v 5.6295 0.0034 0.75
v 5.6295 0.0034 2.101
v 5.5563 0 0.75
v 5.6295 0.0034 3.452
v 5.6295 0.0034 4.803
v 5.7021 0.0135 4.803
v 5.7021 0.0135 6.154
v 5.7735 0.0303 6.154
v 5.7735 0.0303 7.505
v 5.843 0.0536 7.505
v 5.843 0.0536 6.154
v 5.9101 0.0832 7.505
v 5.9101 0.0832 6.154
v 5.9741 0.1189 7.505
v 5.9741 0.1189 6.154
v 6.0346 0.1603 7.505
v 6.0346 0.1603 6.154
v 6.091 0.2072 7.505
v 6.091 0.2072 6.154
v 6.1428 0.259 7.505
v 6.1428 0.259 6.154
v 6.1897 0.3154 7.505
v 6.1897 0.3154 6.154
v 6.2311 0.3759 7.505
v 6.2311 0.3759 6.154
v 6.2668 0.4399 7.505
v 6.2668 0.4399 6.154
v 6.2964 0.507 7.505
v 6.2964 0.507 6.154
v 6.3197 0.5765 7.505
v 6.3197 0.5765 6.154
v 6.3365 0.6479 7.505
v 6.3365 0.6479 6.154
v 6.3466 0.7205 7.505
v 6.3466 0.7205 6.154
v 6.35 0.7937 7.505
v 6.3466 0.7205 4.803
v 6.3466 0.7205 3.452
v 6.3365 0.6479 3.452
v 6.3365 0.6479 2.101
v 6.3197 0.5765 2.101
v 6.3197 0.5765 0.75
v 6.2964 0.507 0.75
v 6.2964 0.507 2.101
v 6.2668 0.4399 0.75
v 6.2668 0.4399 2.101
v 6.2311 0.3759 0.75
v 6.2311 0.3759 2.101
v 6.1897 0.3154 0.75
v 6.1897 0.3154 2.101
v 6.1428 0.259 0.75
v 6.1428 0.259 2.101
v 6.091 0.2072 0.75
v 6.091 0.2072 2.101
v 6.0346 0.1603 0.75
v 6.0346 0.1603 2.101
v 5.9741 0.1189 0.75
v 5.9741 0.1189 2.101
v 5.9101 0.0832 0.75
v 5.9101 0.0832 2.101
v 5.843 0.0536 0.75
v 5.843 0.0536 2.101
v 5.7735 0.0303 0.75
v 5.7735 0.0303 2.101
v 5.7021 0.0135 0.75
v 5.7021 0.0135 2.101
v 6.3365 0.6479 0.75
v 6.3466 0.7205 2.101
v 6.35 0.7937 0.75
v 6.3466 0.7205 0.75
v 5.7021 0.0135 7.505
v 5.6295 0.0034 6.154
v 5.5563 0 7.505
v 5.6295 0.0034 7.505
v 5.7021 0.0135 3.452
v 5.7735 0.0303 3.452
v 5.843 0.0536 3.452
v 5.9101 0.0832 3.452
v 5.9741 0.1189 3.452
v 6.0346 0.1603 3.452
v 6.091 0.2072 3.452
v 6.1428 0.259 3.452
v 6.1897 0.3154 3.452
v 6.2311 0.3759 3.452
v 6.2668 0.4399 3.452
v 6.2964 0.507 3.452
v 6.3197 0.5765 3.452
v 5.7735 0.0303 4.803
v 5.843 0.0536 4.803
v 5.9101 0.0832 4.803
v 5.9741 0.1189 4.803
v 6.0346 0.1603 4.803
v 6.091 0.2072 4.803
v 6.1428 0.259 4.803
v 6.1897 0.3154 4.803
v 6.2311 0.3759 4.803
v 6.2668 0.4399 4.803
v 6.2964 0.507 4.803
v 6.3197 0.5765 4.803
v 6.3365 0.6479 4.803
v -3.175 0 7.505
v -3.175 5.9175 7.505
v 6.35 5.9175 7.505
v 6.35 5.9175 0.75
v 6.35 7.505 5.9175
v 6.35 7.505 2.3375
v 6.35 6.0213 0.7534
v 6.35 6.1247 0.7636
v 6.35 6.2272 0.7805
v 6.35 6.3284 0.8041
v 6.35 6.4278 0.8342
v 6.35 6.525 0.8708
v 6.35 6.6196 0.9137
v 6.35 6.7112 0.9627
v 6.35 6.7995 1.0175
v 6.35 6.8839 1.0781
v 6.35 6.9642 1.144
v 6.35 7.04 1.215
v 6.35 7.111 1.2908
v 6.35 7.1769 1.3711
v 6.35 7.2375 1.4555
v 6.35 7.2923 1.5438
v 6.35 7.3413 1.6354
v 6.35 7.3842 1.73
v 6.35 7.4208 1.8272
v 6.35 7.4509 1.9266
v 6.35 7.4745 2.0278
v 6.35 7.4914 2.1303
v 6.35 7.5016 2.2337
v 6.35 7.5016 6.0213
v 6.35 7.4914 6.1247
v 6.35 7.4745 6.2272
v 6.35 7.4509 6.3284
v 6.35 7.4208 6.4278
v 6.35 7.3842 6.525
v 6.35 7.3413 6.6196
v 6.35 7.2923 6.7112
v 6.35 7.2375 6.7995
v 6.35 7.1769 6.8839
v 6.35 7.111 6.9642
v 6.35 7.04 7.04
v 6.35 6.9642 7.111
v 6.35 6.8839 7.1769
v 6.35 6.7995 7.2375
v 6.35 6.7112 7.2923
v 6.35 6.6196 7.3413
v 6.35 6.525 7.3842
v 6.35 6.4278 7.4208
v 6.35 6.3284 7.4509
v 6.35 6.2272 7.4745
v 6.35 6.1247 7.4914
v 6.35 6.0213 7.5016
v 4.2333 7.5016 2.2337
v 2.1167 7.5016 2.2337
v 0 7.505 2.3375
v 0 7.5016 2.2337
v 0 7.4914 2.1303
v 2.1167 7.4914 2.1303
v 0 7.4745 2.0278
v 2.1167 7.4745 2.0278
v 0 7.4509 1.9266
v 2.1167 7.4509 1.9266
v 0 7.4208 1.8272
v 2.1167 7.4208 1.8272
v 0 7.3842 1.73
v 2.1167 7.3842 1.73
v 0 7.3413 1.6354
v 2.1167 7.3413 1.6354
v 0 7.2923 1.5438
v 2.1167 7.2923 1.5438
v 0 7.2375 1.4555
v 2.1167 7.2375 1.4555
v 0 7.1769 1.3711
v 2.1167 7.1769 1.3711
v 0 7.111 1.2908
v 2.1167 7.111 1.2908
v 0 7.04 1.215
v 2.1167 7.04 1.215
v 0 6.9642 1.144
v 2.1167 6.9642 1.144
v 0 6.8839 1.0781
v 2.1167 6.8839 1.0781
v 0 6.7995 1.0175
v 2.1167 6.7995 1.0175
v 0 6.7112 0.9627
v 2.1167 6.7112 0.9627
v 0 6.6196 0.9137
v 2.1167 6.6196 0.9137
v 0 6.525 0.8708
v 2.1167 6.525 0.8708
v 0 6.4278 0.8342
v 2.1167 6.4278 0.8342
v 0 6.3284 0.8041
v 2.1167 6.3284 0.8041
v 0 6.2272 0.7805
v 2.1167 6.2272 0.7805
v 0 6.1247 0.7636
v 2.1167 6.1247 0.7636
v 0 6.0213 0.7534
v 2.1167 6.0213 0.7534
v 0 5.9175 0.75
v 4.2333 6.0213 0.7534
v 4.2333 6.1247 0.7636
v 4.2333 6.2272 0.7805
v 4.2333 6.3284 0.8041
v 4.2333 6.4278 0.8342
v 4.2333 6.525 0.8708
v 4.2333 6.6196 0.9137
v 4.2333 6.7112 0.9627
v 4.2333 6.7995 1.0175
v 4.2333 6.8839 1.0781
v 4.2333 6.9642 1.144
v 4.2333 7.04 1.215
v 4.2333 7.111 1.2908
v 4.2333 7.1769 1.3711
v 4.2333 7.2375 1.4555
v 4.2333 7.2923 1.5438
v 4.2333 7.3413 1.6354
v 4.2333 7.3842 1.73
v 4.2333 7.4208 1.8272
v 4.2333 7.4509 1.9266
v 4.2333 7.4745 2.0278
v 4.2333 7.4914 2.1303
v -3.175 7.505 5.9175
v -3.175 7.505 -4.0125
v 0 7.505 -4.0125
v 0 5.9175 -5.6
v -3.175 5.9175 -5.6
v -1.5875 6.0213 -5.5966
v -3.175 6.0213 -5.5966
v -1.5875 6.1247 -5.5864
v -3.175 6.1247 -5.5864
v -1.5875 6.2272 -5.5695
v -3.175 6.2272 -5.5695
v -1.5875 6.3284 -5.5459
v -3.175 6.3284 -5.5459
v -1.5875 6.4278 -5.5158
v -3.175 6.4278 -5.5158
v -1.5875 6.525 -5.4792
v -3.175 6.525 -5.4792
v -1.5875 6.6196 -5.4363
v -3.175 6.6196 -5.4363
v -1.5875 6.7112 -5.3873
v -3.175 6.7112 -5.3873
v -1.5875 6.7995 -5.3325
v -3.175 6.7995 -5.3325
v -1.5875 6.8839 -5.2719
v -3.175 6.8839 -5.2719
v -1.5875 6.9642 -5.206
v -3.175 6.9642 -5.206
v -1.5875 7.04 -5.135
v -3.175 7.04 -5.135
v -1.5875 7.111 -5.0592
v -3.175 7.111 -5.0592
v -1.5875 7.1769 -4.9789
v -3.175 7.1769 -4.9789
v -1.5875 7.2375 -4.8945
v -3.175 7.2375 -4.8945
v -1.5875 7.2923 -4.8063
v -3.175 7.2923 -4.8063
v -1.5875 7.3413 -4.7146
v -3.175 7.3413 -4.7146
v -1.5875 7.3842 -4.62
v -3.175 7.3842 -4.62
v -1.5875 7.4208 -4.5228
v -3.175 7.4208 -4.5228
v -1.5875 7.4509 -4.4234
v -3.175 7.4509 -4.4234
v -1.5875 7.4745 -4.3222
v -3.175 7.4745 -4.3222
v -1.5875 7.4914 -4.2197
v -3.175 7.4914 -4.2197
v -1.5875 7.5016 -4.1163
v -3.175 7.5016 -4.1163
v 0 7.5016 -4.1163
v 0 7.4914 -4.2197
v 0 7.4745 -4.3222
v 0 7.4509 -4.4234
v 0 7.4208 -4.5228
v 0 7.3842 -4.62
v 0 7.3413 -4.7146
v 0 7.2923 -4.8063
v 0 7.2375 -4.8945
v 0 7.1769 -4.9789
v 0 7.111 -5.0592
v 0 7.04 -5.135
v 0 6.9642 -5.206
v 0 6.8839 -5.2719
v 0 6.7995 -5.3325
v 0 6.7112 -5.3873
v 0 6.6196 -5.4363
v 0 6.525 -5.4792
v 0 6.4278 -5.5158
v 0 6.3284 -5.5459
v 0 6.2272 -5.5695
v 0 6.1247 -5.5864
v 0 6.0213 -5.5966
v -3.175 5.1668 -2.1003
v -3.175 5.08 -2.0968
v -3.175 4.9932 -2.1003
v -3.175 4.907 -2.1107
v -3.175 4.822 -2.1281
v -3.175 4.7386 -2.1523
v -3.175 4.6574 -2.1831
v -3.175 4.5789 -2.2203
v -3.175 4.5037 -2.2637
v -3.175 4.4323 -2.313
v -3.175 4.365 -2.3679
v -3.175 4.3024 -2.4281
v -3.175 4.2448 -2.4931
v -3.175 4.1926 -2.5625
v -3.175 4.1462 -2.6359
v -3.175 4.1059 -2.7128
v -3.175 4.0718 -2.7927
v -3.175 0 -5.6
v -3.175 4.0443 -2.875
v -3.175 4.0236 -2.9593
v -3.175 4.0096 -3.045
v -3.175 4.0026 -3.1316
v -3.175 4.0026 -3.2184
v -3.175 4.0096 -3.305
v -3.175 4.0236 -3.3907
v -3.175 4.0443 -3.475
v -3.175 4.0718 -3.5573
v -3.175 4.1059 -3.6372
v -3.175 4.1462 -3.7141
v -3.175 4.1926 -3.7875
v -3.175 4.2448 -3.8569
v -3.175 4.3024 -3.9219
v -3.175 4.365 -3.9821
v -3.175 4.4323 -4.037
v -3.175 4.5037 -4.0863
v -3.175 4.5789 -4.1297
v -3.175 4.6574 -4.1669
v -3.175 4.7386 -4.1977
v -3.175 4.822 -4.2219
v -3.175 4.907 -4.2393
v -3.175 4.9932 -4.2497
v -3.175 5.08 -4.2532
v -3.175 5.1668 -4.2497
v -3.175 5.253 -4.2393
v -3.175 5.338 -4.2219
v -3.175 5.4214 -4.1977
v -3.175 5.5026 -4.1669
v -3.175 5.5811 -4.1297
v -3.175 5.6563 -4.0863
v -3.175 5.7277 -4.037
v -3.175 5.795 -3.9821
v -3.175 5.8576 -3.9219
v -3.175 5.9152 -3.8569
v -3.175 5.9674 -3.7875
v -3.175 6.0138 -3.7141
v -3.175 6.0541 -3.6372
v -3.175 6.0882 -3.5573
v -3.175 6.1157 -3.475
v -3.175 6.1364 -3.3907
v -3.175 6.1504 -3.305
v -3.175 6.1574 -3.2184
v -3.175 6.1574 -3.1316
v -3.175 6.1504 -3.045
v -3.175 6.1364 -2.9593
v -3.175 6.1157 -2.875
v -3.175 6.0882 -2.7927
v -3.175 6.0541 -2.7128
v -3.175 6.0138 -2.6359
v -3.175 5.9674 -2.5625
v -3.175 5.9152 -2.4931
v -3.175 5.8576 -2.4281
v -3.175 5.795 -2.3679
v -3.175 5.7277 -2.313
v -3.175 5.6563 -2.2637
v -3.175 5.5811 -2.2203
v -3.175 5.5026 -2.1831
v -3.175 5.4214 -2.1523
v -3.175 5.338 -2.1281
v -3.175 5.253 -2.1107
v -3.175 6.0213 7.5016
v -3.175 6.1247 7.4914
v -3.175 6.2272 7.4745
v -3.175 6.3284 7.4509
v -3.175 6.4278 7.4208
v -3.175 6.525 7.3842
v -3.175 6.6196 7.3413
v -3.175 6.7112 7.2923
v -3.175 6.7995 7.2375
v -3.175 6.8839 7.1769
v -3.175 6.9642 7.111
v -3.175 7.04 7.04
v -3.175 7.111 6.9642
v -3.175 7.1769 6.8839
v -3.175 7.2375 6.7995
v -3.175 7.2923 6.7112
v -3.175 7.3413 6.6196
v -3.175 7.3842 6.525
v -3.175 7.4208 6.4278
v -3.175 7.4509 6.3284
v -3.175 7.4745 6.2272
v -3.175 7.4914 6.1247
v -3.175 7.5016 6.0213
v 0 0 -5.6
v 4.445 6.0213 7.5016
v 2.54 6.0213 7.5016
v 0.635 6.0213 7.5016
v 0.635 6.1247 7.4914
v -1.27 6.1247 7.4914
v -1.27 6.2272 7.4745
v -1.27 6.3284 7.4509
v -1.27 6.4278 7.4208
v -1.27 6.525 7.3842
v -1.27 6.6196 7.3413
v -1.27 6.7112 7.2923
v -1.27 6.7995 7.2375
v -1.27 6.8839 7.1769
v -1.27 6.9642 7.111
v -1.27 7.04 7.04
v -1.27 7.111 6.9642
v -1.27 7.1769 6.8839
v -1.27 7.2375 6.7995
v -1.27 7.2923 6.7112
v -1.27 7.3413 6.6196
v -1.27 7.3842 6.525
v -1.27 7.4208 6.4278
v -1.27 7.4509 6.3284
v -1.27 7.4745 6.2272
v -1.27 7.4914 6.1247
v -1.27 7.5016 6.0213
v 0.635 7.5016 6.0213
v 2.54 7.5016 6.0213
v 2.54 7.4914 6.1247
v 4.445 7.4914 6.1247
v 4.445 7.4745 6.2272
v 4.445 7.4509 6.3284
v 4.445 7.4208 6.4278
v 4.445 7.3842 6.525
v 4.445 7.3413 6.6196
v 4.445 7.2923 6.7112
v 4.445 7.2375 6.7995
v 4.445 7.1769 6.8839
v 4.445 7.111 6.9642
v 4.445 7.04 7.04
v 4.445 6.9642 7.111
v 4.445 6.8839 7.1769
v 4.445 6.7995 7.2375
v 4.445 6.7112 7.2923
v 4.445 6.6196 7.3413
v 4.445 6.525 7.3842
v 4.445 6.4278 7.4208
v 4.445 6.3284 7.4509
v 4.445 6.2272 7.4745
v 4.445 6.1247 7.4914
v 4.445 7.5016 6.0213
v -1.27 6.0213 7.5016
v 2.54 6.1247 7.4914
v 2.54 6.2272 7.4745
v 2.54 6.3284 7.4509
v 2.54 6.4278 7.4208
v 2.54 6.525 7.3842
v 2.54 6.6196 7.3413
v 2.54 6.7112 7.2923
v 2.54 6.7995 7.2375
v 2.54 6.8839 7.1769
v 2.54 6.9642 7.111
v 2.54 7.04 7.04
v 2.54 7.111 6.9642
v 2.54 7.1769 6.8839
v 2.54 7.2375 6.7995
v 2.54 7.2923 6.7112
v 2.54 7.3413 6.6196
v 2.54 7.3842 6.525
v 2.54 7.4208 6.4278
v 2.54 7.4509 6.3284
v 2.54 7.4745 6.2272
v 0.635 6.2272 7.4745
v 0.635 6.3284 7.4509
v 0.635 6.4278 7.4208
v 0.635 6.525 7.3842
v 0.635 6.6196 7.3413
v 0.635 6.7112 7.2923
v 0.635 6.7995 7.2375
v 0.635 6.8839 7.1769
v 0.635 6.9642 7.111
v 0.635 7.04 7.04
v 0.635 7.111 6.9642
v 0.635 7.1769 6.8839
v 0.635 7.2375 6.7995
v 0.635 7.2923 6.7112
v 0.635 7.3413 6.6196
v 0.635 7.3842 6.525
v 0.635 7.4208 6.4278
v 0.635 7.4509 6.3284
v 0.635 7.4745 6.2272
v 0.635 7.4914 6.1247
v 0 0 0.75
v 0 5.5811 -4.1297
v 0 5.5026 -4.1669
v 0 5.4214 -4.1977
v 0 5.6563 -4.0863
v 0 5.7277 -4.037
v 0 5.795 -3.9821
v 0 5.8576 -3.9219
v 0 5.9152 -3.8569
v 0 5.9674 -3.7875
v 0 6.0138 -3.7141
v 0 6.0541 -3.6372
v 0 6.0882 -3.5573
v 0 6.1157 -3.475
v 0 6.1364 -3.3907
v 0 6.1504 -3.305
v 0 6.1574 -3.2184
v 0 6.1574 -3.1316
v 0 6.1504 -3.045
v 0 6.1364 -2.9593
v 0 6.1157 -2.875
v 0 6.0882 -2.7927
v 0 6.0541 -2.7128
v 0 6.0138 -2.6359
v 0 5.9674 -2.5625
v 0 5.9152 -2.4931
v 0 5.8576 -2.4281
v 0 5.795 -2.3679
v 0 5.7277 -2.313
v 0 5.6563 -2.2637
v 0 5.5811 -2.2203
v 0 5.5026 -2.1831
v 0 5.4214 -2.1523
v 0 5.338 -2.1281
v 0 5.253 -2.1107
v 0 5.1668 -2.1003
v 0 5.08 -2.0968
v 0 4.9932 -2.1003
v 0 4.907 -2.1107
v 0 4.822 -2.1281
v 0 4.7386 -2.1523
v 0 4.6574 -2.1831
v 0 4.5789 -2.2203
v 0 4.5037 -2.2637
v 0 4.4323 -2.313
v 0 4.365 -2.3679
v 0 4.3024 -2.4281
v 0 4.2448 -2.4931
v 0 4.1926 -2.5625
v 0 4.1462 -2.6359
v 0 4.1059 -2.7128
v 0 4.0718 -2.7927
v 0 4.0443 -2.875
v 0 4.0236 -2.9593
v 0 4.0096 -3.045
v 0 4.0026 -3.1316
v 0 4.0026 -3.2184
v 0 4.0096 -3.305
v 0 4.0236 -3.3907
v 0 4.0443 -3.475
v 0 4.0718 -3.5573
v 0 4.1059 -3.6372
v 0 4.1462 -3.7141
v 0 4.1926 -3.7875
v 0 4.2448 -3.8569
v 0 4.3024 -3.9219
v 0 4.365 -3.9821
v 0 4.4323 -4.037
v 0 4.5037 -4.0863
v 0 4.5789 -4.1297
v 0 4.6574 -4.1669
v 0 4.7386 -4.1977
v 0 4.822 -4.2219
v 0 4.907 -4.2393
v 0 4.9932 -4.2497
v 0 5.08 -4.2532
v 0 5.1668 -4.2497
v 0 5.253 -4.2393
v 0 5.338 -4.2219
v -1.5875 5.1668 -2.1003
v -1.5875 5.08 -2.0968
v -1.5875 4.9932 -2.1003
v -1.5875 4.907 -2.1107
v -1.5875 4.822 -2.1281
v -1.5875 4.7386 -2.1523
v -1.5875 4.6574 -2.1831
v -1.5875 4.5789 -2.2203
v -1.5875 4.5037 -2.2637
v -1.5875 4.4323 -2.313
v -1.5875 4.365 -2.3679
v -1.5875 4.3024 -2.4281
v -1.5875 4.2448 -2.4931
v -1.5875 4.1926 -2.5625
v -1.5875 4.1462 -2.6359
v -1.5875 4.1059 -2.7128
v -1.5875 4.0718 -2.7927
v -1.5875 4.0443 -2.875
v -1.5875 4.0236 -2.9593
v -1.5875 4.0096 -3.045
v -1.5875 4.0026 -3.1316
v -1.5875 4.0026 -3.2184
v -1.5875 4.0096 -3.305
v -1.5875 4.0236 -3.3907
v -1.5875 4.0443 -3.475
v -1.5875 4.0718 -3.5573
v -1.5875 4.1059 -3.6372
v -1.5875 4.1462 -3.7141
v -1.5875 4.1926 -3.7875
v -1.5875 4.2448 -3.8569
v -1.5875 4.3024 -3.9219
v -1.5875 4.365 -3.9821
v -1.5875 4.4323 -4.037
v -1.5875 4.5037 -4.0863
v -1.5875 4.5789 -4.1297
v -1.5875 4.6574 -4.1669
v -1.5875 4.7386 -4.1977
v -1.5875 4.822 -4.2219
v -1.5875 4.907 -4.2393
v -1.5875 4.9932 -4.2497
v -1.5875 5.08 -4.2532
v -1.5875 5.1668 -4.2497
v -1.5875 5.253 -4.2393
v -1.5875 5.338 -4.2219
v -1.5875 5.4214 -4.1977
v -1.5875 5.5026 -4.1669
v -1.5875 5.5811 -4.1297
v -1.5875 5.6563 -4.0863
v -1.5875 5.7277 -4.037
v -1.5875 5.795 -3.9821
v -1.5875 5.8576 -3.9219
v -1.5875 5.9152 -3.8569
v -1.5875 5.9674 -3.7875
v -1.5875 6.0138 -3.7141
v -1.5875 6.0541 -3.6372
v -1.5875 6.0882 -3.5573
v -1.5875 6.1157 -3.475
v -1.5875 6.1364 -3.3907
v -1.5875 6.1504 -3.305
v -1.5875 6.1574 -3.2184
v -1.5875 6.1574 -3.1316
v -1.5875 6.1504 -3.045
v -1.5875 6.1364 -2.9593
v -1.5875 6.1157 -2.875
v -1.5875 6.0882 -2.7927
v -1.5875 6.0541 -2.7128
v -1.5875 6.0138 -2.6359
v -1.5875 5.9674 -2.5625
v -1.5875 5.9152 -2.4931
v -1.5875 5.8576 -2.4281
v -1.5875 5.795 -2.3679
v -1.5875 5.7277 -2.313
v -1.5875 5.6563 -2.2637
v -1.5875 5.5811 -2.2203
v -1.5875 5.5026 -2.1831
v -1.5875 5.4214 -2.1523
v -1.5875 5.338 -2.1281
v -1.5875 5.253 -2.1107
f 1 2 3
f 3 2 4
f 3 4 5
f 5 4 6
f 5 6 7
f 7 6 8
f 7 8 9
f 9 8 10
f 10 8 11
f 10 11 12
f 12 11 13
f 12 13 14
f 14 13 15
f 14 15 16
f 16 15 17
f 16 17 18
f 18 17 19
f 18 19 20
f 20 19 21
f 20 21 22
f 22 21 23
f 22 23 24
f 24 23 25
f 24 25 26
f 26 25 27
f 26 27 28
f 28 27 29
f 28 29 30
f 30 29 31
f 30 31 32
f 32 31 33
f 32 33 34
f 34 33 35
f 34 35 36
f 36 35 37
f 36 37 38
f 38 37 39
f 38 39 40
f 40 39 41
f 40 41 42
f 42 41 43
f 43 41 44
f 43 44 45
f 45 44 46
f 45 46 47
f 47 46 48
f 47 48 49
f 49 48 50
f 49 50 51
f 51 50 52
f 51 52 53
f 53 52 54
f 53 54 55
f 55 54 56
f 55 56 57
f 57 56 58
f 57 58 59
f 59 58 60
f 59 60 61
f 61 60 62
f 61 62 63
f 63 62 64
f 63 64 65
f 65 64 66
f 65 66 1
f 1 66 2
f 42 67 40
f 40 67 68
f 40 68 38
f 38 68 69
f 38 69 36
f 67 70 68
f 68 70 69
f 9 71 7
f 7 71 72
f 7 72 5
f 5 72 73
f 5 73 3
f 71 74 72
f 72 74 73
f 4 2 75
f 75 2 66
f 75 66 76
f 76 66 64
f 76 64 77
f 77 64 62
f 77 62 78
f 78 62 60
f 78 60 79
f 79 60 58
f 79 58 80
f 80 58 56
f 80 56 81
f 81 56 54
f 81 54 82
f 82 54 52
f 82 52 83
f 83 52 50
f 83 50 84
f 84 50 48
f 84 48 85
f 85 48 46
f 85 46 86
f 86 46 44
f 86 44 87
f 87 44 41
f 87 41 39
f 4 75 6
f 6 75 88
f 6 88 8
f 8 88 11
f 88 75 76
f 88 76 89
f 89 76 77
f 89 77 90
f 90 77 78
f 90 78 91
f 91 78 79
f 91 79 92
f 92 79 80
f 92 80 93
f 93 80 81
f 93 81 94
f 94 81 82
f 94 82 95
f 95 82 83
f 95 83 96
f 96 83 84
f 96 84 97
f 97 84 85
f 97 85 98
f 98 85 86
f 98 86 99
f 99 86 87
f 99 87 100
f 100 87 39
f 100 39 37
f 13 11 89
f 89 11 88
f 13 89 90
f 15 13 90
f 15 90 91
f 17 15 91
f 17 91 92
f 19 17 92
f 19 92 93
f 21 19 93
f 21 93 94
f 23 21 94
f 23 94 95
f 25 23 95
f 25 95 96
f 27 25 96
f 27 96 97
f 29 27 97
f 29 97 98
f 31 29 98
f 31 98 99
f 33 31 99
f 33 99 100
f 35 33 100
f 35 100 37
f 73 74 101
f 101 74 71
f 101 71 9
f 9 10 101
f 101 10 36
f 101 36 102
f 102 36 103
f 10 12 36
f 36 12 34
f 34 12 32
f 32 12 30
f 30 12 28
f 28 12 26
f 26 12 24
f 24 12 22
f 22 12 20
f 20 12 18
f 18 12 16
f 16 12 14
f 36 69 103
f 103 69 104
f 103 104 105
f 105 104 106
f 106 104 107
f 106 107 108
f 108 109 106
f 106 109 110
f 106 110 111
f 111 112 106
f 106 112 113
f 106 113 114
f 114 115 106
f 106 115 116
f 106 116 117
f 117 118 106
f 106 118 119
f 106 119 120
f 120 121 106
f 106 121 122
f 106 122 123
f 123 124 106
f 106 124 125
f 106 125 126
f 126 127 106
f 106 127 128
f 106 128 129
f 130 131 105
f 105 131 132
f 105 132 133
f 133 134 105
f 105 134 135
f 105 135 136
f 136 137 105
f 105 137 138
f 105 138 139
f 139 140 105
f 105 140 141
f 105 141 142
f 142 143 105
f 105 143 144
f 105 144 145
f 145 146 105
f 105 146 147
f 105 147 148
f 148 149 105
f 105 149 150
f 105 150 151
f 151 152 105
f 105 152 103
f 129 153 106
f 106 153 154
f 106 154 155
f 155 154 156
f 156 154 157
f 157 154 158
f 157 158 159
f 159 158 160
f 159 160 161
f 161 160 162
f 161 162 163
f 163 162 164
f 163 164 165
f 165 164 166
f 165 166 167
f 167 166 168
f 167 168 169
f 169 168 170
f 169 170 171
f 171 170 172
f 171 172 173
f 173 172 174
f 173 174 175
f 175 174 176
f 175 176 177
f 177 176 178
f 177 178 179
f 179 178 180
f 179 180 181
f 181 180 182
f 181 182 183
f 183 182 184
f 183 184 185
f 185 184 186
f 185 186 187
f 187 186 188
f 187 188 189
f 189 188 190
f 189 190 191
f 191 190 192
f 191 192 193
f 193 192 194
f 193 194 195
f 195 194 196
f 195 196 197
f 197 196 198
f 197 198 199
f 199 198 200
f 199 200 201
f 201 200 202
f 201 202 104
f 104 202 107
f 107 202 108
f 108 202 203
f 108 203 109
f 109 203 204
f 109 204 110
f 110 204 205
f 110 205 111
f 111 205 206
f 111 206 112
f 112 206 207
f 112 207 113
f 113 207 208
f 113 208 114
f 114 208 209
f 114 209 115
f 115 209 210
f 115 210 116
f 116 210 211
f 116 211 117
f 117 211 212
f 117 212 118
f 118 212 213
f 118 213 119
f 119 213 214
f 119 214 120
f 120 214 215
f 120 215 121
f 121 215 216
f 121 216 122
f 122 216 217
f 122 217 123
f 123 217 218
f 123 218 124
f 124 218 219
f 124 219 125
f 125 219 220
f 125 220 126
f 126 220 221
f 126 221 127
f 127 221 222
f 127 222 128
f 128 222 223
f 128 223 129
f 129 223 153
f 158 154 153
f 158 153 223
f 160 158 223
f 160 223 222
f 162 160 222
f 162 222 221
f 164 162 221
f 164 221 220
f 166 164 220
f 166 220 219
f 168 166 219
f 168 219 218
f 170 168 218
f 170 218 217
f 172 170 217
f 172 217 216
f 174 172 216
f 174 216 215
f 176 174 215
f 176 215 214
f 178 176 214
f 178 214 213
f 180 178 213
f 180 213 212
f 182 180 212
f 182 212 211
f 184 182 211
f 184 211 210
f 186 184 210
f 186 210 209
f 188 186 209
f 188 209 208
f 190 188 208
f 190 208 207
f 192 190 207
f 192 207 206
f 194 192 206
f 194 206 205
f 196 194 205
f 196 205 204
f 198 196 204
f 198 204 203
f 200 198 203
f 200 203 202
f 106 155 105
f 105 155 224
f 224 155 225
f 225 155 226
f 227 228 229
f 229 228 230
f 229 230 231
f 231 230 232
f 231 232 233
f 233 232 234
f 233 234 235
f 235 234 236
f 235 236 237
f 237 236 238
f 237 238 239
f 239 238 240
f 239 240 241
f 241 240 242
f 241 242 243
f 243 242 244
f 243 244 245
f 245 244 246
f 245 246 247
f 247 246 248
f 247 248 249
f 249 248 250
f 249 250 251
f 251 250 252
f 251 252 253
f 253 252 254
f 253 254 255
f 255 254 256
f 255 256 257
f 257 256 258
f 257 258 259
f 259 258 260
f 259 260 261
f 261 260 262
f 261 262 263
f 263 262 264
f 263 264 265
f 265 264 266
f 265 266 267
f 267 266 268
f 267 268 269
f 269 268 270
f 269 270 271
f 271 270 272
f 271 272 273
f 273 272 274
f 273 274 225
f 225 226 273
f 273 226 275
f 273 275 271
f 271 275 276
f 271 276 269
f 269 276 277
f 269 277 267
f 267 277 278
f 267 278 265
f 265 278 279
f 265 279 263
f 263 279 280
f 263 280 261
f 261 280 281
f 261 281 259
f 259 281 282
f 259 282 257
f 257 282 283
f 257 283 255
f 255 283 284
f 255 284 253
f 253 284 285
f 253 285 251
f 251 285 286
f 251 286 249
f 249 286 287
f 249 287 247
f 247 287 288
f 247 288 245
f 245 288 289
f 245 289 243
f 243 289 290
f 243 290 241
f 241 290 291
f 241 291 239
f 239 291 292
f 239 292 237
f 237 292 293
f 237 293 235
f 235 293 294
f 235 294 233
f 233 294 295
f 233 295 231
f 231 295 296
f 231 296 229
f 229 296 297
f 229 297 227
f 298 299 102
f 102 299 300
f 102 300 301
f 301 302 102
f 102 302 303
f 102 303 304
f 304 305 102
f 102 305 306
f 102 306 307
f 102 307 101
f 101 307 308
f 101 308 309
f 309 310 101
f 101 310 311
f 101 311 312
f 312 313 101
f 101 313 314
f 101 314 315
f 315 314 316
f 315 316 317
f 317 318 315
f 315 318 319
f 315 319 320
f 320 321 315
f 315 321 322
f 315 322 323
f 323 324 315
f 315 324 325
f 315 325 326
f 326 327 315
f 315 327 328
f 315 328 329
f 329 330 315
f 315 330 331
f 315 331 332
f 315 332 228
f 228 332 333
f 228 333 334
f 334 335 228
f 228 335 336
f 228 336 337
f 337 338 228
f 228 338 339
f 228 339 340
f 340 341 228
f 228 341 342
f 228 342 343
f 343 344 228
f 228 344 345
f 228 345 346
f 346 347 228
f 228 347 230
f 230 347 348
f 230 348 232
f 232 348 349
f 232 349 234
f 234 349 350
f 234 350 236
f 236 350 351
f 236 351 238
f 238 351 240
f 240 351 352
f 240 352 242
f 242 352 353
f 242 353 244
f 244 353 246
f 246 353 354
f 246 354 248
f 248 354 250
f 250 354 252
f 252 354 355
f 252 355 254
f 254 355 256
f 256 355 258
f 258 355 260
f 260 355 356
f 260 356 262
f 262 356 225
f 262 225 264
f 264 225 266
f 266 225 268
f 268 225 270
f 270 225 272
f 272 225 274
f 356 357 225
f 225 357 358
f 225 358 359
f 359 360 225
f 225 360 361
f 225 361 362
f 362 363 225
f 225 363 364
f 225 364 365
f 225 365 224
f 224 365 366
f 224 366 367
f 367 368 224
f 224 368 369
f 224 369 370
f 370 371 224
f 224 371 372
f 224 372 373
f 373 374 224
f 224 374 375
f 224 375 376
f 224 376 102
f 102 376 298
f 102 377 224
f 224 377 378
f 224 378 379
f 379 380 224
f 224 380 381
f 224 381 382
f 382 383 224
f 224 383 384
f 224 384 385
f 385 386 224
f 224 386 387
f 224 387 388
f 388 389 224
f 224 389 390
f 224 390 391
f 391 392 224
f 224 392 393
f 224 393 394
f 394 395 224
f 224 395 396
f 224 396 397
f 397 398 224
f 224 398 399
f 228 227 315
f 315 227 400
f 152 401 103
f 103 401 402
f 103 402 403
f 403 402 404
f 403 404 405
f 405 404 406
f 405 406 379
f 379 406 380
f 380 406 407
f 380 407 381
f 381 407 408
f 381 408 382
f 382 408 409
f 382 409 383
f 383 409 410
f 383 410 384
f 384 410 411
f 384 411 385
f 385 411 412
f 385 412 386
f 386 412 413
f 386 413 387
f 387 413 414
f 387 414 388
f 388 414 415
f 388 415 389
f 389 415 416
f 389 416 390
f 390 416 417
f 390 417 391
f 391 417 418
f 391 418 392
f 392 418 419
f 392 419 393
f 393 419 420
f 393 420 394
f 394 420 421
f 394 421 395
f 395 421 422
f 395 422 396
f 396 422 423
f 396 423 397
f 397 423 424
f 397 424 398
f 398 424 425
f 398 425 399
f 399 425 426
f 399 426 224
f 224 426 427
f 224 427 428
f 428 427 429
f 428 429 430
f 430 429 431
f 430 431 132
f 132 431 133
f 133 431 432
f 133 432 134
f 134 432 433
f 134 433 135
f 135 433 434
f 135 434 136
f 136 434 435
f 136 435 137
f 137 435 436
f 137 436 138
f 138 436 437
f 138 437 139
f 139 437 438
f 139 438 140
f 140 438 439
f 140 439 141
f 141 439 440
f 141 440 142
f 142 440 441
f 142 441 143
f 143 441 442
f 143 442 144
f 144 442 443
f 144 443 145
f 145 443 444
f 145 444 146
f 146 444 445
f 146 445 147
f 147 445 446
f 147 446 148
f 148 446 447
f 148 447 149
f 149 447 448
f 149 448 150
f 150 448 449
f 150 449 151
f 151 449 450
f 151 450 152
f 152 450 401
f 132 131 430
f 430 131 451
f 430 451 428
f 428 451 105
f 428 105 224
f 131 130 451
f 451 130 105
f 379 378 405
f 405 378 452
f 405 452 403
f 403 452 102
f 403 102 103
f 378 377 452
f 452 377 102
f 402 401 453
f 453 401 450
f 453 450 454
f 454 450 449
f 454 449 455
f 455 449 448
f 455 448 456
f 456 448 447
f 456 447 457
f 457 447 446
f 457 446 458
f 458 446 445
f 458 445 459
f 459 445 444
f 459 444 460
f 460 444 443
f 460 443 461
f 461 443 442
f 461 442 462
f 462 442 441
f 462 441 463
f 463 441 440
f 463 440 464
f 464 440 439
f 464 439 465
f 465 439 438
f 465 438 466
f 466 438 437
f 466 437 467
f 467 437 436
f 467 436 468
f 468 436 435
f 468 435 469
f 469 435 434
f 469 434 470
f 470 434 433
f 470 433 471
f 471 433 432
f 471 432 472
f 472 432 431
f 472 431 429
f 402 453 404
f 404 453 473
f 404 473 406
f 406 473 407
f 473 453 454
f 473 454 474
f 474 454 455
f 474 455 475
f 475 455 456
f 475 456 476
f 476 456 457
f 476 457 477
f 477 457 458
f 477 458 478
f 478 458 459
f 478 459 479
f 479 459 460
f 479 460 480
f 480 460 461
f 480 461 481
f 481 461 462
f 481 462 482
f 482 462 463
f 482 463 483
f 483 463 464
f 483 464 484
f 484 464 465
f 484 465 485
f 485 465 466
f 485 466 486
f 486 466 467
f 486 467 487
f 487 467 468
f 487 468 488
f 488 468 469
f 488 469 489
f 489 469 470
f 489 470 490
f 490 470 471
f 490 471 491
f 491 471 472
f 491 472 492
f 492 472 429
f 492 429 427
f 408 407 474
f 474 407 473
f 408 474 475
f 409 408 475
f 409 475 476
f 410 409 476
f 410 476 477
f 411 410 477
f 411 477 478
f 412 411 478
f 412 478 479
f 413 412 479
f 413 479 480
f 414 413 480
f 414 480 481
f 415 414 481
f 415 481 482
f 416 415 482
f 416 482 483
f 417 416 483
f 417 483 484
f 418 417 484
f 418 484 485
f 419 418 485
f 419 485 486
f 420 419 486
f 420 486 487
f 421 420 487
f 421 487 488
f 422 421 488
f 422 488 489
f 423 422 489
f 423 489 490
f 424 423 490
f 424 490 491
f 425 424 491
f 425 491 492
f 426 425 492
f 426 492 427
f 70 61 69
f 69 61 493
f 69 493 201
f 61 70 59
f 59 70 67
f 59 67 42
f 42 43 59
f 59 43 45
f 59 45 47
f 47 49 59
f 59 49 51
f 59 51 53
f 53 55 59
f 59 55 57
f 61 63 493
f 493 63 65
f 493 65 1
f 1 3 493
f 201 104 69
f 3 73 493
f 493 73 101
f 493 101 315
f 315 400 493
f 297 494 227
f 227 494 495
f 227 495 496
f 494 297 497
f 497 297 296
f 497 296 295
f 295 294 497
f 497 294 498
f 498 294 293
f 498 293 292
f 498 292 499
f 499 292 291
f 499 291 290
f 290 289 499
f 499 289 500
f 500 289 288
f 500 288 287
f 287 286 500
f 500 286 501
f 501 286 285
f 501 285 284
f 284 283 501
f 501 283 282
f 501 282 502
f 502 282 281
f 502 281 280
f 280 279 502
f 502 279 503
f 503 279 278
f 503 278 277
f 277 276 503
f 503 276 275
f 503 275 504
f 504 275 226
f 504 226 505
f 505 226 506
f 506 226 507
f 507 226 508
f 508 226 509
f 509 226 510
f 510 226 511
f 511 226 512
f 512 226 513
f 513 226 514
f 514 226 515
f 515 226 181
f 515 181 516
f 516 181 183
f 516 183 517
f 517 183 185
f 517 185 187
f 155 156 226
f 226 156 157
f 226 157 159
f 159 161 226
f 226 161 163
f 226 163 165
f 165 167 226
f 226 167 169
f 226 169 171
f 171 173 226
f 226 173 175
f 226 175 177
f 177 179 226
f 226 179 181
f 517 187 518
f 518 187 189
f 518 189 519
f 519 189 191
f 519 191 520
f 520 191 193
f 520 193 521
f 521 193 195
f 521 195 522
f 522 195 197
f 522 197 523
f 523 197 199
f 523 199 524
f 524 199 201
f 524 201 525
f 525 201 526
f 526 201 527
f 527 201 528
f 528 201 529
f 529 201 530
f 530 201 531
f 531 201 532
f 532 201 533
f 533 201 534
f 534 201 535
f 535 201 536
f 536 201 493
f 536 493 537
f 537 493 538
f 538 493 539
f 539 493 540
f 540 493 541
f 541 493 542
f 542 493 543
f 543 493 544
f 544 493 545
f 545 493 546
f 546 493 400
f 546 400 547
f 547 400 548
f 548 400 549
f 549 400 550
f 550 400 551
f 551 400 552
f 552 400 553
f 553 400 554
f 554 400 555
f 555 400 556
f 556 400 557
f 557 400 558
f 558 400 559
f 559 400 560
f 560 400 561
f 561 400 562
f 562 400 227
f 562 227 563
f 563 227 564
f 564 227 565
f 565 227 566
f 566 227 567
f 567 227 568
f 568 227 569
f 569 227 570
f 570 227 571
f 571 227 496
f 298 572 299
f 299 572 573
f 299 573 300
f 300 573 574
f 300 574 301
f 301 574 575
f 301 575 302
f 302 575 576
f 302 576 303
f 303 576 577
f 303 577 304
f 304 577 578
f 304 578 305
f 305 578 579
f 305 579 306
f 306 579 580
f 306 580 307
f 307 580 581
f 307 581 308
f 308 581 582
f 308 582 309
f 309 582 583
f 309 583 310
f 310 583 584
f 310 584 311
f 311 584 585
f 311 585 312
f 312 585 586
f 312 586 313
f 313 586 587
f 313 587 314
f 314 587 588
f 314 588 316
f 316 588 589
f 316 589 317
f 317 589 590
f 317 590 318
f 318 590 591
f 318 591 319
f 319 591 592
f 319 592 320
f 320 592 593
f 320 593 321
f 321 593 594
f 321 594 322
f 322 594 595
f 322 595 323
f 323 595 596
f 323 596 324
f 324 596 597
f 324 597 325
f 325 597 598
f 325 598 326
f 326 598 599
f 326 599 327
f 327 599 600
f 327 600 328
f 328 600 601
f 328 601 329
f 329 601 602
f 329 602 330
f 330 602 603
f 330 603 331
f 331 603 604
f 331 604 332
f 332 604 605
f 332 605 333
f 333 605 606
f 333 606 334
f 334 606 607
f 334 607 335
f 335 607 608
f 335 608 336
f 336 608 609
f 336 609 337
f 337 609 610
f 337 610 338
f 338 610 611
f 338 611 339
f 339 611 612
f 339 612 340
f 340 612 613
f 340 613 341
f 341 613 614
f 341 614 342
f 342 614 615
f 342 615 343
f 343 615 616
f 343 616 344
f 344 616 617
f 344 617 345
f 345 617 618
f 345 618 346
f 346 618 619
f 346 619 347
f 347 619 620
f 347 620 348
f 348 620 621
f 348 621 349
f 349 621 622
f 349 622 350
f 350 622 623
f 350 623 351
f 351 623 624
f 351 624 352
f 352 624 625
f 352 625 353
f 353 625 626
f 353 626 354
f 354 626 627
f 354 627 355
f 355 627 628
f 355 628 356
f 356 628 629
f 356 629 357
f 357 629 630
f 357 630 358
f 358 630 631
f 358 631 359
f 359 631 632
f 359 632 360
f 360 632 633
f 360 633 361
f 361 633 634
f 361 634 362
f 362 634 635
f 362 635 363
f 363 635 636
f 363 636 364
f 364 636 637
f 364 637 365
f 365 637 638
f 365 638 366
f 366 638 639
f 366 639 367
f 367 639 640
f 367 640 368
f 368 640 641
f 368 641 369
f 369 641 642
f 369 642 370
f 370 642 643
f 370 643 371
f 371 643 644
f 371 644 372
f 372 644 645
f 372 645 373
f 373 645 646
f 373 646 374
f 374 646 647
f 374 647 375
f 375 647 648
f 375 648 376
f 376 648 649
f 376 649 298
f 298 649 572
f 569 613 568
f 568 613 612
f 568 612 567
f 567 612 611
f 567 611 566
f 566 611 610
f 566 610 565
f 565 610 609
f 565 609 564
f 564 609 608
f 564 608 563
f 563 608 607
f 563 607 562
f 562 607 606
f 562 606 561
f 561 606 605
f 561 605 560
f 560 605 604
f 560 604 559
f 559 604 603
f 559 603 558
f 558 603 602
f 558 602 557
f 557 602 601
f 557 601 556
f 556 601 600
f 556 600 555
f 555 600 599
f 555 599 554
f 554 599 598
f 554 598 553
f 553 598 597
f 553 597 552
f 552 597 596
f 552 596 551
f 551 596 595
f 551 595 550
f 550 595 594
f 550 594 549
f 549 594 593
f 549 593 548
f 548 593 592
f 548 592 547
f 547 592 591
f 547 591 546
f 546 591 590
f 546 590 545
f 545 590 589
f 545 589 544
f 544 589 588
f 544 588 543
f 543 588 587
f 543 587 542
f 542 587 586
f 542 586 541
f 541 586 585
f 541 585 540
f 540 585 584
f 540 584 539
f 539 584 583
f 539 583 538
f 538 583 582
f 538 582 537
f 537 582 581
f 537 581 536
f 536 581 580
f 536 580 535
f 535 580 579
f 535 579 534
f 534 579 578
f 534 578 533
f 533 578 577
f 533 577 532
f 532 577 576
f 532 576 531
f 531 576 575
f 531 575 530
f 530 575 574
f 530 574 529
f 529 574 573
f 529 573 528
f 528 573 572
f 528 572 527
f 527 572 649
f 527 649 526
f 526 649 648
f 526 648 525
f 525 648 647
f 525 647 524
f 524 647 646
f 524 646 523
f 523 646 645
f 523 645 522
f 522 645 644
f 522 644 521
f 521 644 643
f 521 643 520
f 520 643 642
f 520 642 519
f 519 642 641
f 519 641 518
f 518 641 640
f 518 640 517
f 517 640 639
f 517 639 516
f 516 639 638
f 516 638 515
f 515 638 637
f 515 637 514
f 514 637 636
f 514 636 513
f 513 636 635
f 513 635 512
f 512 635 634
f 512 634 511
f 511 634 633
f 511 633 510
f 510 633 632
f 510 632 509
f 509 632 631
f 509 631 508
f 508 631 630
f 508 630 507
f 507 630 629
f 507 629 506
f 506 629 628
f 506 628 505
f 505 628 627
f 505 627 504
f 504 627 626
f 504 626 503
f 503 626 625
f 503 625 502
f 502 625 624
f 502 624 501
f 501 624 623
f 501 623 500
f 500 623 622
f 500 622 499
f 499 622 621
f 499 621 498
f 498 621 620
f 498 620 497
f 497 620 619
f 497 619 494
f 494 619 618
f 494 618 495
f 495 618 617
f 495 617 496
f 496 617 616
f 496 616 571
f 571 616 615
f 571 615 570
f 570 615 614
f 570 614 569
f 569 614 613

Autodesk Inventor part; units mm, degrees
ref_plane "YZ Plane" through (0, 0, 0) normal (1, 0, 0) x (0, 1, 0)
ref_plane "XZ Plane" through (0, 0, 0) normal (0, 1, 0) x (-1, 0, 0)
ref_plane "XY Plane" through (0, 0, 0) normal (0, 0, 1) x (1, 0, 0)
sketch "Sketch1" plane through (0, 0, 0) normal (0, 1, 0) x (-1, 0, 0)
  line L0 (0, 0) -> (3.175, 0)
  line L1 (3.175, 0) -> (3.175, -6.35)
  line L2 (3.175, -6.35) -> (0, -6.35)
  line L3 (0, -6.35) -> (0, 0)
  line L4 (0, 0) -> (9.525, 0)
  line L5 (9.525, 0) -> (9.525, 8.255)
  line L6 (9.525, 8.255) -> (0, 8.255)
  line L7 (0, 8.255) -> (0, 0)
  line L8 (3.175, 0) -> (-6.35, 0)
  line L9 (-6.35, 0) -> (-6.35, 8.255)
  line L10 (-6.35, 8.255) -> (3.175, 8.255)
  line L11 (3.175, 8.255) -> (3.175, 0)
  dimension "d0" = 3.175
  dimension "d1" = 6.35
  dimension "d2" = 9.525
  dimension "d3" = 8.255
  dimension "d21" = 9.525
extrude "Extrusion1" add sketch "Sketch1" along normal blind 8.255 contours L7 L6 L11 L0 | L0 L1 L2 L3 | L8 L9 L10 L7
sketch "Sketch2" plane through (0, 0, 8.255) normal (1, 0, 0) x (0, 0, -1)
  line L0 (8.255, 8.255) -> (14.605, 8.255) projected
  line L1 (14.605, 8.255) -> (11.43, 8.255)
  line L2 (11.43, 8.255) -> (11.43, 5.08)
  line L3 (11.43, 5.08) -> (14.605, 5.08)
  line L4 (14.605, 5.08) -> (14.605, 8.255)
  point P0 (8.255, 0)
  point P1 (0, 8.255)
  dimension "d6" = 3.175
  dimension "d7" = 3.175
hole "Hole1" at (0, 5.08, -3.175) direction (-1, 0, 0) diameter 2.1565 depth 8.8646 tip angle 118 thread size "4-40 UNC" class "2B" standard "ANSI Unified Screw Threads"
sketch "Sketch3" plane through (0, 8.255, 0) normal (0, 1, 0) x (1, 0, 0)
  line L0 (0, 0) -> (0, 6.35) projected
  line L1 (0, 6.35) -> (-3.175, 6.35) projected
  line L2 (-3.175, 6.35) -> (-3.175, -8.255) projected
  line L3 (-3.175, -8.255) -> (6.35, -8.255) projected
  line L4 (6.35, -8.255) -> (6.35, 0) projected
  line L5 (6.35, 0) -> (0, 0) projected
extrude "Extrusion2" cut sketch "Sketch3" against normal blind 0.75
sketch "Sketch4" plane through (0, 0, -6.35) normal (0, 0, -1) x (-1, 0, 0)
  line L0 (3.175, 7.505) -> (0, 7.505) projected
  line L1 (0, 0) -> (0, 7.505) projected
  line L2 (0, 0) -> (3.175, 0) projected
  line L3 (3.175, 0) -> (3.175, 7.505) projected
extrude "Extrusion3" cut sketch "Sketch4" against normal blind 0.75
sketch "Sketch5" plane through (-9.525, 0, 8.255) normal (0, 0, 1) x (1, 0, 0)
  line L0 (15.875, 7.505) -> (6.35, 7.505) projected
  line L1 (6.35, 0) -> (15.875, 0) projected
  line L2 (6.35, 0) -> (6.35, 7.505) projected
  line L3 (15.875, 0) -> (15.875, 7.505) projected
  line L4 (15.875, 7.505) -> (6.35, 7.505) projected
  line L5 (6.35, 0) -> (6.35, 7.505) projected
  line L6 (6.35, 0) -> (15.875, 0) projected
  line L7 (15.875, 0) -> (15.875, 7.505) projected
  point P0 (9.525, 0)
extrude "Extrusion4" cut sketch "Sketch5" against normal blind 0.75
sketch "Sketch6" plane through (6.35, 0, 0) normal (0, 0, -1) x (-1, 0, 0)
  line L0 (6.35, 7.505) -> (0, 7.505) projected
  line L1 (0, 0) -> (0, 7.505) projected
  line L2 (0, 0) -> (6.35, 0) projected
  line L3 (6.35, 0) -> (6.35, 7.505) projected
extrude "Extrusion5" cut sketch "Sketch6" against normal blind 0.75
fillet "Fillet1" radius 1.5875 3 edges at (1.5875, 7.505, 7.505) (-1.5875, 7.505, -5.6) (3.175, 7.505, 0.75)
fillet "Fillet2" radius 0.7937 1 edges at (6.35, 0, 4.1275)
properties part number "AFL-101-002-01-4E RetainerNut"
